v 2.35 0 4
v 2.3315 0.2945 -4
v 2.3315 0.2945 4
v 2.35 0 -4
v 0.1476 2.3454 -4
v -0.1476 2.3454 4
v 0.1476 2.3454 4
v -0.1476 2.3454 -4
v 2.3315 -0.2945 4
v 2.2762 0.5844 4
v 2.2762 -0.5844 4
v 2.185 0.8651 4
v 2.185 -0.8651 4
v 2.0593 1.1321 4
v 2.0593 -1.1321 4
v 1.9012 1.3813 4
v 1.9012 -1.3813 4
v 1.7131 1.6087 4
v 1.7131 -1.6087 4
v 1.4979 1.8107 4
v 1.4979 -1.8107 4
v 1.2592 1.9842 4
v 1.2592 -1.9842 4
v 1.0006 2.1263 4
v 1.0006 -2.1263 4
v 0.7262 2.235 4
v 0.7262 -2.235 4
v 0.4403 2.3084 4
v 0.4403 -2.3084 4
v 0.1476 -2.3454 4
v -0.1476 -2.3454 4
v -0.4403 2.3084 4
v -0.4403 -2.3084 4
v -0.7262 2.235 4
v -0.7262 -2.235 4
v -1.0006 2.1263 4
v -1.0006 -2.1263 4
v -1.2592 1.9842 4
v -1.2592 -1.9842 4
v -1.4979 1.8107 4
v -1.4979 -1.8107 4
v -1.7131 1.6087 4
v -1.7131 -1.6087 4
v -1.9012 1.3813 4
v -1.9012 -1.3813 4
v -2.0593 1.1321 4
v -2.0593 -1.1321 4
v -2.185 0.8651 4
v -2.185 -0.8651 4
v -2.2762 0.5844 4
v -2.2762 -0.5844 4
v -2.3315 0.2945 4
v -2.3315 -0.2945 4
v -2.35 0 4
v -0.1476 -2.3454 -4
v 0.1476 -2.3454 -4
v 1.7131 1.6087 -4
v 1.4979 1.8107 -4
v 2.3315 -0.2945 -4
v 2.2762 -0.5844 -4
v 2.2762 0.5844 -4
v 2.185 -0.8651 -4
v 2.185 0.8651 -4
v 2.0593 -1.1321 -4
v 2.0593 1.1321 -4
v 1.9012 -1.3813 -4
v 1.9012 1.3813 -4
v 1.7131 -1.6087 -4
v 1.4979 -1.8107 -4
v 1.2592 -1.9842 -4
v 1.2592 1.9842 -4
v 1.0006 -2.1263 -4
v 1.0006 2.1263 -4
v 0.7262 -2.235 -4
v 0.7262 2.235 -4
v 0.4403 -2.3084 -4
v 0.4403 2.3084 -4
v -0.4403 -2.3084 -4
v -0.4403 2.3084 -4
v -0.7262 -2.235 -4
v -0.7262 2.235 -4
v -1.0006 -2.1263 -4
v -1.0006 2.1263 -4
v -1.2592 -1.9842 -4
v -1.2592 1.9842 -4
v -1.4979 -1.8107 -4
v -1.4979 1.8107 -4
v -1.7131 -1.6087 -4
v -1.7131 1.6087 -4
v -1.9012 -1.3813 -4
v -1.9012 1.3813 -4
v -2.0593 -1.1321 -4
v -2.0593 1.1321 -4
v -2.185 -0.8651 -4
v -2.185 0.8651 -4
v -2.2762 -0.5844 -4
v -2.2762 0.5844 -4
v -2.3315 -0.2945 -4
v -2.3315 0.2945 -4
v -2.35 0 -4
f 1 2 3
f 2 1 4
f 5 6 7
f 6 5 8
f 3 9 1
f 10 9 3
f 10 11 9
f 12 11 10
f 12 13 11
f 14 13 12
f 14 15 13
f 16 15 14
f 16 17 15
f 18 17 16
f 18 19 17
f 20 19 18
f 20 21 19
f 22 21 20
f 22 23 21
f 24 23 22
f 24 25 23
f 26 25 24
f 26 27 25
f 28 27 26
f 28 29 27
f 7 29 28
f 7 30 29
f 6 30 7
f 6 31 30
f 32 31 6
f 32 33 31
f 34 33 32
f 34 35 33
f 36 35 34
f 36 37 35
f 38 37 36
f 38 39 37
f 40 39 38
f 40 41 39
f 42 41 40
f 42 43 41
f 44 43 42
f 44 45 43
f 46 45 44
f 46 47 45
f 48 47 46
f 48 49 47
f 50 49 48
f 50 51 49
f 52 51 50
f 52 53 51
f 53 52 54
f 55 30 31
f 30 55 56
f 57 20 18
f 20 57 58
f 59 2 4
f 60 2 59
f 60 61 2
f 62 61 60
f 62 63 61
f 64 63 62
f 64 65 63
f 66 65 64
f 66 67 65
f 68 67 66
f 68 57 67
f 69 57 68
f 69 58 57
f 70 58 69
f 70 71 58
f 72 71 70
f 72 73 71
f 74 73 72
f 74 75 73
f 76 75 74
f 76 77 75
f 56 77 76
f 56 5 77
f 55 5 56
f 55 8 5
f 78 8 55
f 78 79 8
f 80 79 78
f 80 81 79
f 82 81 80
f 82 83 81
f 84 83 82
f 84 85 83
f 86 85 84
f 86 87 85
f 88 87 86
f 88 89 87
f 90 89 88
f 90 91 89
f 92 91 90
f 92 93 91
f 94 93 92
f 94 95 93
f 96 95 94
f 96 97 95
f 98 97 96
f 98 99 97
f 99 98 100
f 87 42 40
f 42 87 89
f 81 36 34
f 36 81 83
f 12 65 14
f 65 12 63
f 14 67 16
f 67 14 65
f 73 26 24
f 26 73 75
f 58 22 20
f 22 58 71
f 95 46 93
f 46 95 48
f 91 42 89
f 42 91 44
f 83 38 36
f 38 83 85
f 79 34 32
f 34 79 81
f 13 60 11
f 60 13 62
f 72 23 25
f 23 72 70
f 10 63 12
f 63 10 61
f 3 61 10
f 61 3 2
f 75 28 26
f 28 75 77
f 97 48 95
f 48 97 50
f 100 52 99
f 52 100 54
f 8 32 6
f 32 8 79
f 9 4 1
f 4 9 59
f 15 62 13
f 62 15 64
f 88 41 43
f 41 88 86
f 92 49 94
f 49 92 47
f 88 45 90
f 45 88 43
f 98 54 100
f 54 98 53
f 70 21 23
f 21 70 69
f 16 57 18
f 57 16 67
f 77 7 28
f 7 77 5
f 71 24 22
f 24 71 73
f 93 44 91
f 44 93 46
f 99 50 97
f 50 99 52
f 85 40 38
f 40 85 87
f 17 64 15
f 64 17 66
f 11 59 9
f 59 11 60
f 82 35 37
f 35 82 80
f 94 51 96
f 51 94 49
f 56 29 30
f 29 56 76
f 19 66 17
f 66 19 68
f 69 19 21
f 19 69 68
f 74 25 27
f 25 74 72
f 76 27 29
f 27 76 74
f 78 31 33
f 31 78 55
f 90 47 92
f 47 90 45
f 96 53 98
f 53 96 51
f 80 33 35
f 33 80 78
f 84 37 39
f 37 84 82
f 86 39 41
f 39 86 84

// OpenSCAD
$fn = 50;


difference() {
	union() {
		translate(v = [0, 0, -4.0000000000]) {
			cylinder(h = 8, r = 2.3500000000);
		}
	}
	union() {
		translate(v = [0, 0, -100.0000000000]) {
			cylinder(h = 200, r = 0);
		}
	}
}
